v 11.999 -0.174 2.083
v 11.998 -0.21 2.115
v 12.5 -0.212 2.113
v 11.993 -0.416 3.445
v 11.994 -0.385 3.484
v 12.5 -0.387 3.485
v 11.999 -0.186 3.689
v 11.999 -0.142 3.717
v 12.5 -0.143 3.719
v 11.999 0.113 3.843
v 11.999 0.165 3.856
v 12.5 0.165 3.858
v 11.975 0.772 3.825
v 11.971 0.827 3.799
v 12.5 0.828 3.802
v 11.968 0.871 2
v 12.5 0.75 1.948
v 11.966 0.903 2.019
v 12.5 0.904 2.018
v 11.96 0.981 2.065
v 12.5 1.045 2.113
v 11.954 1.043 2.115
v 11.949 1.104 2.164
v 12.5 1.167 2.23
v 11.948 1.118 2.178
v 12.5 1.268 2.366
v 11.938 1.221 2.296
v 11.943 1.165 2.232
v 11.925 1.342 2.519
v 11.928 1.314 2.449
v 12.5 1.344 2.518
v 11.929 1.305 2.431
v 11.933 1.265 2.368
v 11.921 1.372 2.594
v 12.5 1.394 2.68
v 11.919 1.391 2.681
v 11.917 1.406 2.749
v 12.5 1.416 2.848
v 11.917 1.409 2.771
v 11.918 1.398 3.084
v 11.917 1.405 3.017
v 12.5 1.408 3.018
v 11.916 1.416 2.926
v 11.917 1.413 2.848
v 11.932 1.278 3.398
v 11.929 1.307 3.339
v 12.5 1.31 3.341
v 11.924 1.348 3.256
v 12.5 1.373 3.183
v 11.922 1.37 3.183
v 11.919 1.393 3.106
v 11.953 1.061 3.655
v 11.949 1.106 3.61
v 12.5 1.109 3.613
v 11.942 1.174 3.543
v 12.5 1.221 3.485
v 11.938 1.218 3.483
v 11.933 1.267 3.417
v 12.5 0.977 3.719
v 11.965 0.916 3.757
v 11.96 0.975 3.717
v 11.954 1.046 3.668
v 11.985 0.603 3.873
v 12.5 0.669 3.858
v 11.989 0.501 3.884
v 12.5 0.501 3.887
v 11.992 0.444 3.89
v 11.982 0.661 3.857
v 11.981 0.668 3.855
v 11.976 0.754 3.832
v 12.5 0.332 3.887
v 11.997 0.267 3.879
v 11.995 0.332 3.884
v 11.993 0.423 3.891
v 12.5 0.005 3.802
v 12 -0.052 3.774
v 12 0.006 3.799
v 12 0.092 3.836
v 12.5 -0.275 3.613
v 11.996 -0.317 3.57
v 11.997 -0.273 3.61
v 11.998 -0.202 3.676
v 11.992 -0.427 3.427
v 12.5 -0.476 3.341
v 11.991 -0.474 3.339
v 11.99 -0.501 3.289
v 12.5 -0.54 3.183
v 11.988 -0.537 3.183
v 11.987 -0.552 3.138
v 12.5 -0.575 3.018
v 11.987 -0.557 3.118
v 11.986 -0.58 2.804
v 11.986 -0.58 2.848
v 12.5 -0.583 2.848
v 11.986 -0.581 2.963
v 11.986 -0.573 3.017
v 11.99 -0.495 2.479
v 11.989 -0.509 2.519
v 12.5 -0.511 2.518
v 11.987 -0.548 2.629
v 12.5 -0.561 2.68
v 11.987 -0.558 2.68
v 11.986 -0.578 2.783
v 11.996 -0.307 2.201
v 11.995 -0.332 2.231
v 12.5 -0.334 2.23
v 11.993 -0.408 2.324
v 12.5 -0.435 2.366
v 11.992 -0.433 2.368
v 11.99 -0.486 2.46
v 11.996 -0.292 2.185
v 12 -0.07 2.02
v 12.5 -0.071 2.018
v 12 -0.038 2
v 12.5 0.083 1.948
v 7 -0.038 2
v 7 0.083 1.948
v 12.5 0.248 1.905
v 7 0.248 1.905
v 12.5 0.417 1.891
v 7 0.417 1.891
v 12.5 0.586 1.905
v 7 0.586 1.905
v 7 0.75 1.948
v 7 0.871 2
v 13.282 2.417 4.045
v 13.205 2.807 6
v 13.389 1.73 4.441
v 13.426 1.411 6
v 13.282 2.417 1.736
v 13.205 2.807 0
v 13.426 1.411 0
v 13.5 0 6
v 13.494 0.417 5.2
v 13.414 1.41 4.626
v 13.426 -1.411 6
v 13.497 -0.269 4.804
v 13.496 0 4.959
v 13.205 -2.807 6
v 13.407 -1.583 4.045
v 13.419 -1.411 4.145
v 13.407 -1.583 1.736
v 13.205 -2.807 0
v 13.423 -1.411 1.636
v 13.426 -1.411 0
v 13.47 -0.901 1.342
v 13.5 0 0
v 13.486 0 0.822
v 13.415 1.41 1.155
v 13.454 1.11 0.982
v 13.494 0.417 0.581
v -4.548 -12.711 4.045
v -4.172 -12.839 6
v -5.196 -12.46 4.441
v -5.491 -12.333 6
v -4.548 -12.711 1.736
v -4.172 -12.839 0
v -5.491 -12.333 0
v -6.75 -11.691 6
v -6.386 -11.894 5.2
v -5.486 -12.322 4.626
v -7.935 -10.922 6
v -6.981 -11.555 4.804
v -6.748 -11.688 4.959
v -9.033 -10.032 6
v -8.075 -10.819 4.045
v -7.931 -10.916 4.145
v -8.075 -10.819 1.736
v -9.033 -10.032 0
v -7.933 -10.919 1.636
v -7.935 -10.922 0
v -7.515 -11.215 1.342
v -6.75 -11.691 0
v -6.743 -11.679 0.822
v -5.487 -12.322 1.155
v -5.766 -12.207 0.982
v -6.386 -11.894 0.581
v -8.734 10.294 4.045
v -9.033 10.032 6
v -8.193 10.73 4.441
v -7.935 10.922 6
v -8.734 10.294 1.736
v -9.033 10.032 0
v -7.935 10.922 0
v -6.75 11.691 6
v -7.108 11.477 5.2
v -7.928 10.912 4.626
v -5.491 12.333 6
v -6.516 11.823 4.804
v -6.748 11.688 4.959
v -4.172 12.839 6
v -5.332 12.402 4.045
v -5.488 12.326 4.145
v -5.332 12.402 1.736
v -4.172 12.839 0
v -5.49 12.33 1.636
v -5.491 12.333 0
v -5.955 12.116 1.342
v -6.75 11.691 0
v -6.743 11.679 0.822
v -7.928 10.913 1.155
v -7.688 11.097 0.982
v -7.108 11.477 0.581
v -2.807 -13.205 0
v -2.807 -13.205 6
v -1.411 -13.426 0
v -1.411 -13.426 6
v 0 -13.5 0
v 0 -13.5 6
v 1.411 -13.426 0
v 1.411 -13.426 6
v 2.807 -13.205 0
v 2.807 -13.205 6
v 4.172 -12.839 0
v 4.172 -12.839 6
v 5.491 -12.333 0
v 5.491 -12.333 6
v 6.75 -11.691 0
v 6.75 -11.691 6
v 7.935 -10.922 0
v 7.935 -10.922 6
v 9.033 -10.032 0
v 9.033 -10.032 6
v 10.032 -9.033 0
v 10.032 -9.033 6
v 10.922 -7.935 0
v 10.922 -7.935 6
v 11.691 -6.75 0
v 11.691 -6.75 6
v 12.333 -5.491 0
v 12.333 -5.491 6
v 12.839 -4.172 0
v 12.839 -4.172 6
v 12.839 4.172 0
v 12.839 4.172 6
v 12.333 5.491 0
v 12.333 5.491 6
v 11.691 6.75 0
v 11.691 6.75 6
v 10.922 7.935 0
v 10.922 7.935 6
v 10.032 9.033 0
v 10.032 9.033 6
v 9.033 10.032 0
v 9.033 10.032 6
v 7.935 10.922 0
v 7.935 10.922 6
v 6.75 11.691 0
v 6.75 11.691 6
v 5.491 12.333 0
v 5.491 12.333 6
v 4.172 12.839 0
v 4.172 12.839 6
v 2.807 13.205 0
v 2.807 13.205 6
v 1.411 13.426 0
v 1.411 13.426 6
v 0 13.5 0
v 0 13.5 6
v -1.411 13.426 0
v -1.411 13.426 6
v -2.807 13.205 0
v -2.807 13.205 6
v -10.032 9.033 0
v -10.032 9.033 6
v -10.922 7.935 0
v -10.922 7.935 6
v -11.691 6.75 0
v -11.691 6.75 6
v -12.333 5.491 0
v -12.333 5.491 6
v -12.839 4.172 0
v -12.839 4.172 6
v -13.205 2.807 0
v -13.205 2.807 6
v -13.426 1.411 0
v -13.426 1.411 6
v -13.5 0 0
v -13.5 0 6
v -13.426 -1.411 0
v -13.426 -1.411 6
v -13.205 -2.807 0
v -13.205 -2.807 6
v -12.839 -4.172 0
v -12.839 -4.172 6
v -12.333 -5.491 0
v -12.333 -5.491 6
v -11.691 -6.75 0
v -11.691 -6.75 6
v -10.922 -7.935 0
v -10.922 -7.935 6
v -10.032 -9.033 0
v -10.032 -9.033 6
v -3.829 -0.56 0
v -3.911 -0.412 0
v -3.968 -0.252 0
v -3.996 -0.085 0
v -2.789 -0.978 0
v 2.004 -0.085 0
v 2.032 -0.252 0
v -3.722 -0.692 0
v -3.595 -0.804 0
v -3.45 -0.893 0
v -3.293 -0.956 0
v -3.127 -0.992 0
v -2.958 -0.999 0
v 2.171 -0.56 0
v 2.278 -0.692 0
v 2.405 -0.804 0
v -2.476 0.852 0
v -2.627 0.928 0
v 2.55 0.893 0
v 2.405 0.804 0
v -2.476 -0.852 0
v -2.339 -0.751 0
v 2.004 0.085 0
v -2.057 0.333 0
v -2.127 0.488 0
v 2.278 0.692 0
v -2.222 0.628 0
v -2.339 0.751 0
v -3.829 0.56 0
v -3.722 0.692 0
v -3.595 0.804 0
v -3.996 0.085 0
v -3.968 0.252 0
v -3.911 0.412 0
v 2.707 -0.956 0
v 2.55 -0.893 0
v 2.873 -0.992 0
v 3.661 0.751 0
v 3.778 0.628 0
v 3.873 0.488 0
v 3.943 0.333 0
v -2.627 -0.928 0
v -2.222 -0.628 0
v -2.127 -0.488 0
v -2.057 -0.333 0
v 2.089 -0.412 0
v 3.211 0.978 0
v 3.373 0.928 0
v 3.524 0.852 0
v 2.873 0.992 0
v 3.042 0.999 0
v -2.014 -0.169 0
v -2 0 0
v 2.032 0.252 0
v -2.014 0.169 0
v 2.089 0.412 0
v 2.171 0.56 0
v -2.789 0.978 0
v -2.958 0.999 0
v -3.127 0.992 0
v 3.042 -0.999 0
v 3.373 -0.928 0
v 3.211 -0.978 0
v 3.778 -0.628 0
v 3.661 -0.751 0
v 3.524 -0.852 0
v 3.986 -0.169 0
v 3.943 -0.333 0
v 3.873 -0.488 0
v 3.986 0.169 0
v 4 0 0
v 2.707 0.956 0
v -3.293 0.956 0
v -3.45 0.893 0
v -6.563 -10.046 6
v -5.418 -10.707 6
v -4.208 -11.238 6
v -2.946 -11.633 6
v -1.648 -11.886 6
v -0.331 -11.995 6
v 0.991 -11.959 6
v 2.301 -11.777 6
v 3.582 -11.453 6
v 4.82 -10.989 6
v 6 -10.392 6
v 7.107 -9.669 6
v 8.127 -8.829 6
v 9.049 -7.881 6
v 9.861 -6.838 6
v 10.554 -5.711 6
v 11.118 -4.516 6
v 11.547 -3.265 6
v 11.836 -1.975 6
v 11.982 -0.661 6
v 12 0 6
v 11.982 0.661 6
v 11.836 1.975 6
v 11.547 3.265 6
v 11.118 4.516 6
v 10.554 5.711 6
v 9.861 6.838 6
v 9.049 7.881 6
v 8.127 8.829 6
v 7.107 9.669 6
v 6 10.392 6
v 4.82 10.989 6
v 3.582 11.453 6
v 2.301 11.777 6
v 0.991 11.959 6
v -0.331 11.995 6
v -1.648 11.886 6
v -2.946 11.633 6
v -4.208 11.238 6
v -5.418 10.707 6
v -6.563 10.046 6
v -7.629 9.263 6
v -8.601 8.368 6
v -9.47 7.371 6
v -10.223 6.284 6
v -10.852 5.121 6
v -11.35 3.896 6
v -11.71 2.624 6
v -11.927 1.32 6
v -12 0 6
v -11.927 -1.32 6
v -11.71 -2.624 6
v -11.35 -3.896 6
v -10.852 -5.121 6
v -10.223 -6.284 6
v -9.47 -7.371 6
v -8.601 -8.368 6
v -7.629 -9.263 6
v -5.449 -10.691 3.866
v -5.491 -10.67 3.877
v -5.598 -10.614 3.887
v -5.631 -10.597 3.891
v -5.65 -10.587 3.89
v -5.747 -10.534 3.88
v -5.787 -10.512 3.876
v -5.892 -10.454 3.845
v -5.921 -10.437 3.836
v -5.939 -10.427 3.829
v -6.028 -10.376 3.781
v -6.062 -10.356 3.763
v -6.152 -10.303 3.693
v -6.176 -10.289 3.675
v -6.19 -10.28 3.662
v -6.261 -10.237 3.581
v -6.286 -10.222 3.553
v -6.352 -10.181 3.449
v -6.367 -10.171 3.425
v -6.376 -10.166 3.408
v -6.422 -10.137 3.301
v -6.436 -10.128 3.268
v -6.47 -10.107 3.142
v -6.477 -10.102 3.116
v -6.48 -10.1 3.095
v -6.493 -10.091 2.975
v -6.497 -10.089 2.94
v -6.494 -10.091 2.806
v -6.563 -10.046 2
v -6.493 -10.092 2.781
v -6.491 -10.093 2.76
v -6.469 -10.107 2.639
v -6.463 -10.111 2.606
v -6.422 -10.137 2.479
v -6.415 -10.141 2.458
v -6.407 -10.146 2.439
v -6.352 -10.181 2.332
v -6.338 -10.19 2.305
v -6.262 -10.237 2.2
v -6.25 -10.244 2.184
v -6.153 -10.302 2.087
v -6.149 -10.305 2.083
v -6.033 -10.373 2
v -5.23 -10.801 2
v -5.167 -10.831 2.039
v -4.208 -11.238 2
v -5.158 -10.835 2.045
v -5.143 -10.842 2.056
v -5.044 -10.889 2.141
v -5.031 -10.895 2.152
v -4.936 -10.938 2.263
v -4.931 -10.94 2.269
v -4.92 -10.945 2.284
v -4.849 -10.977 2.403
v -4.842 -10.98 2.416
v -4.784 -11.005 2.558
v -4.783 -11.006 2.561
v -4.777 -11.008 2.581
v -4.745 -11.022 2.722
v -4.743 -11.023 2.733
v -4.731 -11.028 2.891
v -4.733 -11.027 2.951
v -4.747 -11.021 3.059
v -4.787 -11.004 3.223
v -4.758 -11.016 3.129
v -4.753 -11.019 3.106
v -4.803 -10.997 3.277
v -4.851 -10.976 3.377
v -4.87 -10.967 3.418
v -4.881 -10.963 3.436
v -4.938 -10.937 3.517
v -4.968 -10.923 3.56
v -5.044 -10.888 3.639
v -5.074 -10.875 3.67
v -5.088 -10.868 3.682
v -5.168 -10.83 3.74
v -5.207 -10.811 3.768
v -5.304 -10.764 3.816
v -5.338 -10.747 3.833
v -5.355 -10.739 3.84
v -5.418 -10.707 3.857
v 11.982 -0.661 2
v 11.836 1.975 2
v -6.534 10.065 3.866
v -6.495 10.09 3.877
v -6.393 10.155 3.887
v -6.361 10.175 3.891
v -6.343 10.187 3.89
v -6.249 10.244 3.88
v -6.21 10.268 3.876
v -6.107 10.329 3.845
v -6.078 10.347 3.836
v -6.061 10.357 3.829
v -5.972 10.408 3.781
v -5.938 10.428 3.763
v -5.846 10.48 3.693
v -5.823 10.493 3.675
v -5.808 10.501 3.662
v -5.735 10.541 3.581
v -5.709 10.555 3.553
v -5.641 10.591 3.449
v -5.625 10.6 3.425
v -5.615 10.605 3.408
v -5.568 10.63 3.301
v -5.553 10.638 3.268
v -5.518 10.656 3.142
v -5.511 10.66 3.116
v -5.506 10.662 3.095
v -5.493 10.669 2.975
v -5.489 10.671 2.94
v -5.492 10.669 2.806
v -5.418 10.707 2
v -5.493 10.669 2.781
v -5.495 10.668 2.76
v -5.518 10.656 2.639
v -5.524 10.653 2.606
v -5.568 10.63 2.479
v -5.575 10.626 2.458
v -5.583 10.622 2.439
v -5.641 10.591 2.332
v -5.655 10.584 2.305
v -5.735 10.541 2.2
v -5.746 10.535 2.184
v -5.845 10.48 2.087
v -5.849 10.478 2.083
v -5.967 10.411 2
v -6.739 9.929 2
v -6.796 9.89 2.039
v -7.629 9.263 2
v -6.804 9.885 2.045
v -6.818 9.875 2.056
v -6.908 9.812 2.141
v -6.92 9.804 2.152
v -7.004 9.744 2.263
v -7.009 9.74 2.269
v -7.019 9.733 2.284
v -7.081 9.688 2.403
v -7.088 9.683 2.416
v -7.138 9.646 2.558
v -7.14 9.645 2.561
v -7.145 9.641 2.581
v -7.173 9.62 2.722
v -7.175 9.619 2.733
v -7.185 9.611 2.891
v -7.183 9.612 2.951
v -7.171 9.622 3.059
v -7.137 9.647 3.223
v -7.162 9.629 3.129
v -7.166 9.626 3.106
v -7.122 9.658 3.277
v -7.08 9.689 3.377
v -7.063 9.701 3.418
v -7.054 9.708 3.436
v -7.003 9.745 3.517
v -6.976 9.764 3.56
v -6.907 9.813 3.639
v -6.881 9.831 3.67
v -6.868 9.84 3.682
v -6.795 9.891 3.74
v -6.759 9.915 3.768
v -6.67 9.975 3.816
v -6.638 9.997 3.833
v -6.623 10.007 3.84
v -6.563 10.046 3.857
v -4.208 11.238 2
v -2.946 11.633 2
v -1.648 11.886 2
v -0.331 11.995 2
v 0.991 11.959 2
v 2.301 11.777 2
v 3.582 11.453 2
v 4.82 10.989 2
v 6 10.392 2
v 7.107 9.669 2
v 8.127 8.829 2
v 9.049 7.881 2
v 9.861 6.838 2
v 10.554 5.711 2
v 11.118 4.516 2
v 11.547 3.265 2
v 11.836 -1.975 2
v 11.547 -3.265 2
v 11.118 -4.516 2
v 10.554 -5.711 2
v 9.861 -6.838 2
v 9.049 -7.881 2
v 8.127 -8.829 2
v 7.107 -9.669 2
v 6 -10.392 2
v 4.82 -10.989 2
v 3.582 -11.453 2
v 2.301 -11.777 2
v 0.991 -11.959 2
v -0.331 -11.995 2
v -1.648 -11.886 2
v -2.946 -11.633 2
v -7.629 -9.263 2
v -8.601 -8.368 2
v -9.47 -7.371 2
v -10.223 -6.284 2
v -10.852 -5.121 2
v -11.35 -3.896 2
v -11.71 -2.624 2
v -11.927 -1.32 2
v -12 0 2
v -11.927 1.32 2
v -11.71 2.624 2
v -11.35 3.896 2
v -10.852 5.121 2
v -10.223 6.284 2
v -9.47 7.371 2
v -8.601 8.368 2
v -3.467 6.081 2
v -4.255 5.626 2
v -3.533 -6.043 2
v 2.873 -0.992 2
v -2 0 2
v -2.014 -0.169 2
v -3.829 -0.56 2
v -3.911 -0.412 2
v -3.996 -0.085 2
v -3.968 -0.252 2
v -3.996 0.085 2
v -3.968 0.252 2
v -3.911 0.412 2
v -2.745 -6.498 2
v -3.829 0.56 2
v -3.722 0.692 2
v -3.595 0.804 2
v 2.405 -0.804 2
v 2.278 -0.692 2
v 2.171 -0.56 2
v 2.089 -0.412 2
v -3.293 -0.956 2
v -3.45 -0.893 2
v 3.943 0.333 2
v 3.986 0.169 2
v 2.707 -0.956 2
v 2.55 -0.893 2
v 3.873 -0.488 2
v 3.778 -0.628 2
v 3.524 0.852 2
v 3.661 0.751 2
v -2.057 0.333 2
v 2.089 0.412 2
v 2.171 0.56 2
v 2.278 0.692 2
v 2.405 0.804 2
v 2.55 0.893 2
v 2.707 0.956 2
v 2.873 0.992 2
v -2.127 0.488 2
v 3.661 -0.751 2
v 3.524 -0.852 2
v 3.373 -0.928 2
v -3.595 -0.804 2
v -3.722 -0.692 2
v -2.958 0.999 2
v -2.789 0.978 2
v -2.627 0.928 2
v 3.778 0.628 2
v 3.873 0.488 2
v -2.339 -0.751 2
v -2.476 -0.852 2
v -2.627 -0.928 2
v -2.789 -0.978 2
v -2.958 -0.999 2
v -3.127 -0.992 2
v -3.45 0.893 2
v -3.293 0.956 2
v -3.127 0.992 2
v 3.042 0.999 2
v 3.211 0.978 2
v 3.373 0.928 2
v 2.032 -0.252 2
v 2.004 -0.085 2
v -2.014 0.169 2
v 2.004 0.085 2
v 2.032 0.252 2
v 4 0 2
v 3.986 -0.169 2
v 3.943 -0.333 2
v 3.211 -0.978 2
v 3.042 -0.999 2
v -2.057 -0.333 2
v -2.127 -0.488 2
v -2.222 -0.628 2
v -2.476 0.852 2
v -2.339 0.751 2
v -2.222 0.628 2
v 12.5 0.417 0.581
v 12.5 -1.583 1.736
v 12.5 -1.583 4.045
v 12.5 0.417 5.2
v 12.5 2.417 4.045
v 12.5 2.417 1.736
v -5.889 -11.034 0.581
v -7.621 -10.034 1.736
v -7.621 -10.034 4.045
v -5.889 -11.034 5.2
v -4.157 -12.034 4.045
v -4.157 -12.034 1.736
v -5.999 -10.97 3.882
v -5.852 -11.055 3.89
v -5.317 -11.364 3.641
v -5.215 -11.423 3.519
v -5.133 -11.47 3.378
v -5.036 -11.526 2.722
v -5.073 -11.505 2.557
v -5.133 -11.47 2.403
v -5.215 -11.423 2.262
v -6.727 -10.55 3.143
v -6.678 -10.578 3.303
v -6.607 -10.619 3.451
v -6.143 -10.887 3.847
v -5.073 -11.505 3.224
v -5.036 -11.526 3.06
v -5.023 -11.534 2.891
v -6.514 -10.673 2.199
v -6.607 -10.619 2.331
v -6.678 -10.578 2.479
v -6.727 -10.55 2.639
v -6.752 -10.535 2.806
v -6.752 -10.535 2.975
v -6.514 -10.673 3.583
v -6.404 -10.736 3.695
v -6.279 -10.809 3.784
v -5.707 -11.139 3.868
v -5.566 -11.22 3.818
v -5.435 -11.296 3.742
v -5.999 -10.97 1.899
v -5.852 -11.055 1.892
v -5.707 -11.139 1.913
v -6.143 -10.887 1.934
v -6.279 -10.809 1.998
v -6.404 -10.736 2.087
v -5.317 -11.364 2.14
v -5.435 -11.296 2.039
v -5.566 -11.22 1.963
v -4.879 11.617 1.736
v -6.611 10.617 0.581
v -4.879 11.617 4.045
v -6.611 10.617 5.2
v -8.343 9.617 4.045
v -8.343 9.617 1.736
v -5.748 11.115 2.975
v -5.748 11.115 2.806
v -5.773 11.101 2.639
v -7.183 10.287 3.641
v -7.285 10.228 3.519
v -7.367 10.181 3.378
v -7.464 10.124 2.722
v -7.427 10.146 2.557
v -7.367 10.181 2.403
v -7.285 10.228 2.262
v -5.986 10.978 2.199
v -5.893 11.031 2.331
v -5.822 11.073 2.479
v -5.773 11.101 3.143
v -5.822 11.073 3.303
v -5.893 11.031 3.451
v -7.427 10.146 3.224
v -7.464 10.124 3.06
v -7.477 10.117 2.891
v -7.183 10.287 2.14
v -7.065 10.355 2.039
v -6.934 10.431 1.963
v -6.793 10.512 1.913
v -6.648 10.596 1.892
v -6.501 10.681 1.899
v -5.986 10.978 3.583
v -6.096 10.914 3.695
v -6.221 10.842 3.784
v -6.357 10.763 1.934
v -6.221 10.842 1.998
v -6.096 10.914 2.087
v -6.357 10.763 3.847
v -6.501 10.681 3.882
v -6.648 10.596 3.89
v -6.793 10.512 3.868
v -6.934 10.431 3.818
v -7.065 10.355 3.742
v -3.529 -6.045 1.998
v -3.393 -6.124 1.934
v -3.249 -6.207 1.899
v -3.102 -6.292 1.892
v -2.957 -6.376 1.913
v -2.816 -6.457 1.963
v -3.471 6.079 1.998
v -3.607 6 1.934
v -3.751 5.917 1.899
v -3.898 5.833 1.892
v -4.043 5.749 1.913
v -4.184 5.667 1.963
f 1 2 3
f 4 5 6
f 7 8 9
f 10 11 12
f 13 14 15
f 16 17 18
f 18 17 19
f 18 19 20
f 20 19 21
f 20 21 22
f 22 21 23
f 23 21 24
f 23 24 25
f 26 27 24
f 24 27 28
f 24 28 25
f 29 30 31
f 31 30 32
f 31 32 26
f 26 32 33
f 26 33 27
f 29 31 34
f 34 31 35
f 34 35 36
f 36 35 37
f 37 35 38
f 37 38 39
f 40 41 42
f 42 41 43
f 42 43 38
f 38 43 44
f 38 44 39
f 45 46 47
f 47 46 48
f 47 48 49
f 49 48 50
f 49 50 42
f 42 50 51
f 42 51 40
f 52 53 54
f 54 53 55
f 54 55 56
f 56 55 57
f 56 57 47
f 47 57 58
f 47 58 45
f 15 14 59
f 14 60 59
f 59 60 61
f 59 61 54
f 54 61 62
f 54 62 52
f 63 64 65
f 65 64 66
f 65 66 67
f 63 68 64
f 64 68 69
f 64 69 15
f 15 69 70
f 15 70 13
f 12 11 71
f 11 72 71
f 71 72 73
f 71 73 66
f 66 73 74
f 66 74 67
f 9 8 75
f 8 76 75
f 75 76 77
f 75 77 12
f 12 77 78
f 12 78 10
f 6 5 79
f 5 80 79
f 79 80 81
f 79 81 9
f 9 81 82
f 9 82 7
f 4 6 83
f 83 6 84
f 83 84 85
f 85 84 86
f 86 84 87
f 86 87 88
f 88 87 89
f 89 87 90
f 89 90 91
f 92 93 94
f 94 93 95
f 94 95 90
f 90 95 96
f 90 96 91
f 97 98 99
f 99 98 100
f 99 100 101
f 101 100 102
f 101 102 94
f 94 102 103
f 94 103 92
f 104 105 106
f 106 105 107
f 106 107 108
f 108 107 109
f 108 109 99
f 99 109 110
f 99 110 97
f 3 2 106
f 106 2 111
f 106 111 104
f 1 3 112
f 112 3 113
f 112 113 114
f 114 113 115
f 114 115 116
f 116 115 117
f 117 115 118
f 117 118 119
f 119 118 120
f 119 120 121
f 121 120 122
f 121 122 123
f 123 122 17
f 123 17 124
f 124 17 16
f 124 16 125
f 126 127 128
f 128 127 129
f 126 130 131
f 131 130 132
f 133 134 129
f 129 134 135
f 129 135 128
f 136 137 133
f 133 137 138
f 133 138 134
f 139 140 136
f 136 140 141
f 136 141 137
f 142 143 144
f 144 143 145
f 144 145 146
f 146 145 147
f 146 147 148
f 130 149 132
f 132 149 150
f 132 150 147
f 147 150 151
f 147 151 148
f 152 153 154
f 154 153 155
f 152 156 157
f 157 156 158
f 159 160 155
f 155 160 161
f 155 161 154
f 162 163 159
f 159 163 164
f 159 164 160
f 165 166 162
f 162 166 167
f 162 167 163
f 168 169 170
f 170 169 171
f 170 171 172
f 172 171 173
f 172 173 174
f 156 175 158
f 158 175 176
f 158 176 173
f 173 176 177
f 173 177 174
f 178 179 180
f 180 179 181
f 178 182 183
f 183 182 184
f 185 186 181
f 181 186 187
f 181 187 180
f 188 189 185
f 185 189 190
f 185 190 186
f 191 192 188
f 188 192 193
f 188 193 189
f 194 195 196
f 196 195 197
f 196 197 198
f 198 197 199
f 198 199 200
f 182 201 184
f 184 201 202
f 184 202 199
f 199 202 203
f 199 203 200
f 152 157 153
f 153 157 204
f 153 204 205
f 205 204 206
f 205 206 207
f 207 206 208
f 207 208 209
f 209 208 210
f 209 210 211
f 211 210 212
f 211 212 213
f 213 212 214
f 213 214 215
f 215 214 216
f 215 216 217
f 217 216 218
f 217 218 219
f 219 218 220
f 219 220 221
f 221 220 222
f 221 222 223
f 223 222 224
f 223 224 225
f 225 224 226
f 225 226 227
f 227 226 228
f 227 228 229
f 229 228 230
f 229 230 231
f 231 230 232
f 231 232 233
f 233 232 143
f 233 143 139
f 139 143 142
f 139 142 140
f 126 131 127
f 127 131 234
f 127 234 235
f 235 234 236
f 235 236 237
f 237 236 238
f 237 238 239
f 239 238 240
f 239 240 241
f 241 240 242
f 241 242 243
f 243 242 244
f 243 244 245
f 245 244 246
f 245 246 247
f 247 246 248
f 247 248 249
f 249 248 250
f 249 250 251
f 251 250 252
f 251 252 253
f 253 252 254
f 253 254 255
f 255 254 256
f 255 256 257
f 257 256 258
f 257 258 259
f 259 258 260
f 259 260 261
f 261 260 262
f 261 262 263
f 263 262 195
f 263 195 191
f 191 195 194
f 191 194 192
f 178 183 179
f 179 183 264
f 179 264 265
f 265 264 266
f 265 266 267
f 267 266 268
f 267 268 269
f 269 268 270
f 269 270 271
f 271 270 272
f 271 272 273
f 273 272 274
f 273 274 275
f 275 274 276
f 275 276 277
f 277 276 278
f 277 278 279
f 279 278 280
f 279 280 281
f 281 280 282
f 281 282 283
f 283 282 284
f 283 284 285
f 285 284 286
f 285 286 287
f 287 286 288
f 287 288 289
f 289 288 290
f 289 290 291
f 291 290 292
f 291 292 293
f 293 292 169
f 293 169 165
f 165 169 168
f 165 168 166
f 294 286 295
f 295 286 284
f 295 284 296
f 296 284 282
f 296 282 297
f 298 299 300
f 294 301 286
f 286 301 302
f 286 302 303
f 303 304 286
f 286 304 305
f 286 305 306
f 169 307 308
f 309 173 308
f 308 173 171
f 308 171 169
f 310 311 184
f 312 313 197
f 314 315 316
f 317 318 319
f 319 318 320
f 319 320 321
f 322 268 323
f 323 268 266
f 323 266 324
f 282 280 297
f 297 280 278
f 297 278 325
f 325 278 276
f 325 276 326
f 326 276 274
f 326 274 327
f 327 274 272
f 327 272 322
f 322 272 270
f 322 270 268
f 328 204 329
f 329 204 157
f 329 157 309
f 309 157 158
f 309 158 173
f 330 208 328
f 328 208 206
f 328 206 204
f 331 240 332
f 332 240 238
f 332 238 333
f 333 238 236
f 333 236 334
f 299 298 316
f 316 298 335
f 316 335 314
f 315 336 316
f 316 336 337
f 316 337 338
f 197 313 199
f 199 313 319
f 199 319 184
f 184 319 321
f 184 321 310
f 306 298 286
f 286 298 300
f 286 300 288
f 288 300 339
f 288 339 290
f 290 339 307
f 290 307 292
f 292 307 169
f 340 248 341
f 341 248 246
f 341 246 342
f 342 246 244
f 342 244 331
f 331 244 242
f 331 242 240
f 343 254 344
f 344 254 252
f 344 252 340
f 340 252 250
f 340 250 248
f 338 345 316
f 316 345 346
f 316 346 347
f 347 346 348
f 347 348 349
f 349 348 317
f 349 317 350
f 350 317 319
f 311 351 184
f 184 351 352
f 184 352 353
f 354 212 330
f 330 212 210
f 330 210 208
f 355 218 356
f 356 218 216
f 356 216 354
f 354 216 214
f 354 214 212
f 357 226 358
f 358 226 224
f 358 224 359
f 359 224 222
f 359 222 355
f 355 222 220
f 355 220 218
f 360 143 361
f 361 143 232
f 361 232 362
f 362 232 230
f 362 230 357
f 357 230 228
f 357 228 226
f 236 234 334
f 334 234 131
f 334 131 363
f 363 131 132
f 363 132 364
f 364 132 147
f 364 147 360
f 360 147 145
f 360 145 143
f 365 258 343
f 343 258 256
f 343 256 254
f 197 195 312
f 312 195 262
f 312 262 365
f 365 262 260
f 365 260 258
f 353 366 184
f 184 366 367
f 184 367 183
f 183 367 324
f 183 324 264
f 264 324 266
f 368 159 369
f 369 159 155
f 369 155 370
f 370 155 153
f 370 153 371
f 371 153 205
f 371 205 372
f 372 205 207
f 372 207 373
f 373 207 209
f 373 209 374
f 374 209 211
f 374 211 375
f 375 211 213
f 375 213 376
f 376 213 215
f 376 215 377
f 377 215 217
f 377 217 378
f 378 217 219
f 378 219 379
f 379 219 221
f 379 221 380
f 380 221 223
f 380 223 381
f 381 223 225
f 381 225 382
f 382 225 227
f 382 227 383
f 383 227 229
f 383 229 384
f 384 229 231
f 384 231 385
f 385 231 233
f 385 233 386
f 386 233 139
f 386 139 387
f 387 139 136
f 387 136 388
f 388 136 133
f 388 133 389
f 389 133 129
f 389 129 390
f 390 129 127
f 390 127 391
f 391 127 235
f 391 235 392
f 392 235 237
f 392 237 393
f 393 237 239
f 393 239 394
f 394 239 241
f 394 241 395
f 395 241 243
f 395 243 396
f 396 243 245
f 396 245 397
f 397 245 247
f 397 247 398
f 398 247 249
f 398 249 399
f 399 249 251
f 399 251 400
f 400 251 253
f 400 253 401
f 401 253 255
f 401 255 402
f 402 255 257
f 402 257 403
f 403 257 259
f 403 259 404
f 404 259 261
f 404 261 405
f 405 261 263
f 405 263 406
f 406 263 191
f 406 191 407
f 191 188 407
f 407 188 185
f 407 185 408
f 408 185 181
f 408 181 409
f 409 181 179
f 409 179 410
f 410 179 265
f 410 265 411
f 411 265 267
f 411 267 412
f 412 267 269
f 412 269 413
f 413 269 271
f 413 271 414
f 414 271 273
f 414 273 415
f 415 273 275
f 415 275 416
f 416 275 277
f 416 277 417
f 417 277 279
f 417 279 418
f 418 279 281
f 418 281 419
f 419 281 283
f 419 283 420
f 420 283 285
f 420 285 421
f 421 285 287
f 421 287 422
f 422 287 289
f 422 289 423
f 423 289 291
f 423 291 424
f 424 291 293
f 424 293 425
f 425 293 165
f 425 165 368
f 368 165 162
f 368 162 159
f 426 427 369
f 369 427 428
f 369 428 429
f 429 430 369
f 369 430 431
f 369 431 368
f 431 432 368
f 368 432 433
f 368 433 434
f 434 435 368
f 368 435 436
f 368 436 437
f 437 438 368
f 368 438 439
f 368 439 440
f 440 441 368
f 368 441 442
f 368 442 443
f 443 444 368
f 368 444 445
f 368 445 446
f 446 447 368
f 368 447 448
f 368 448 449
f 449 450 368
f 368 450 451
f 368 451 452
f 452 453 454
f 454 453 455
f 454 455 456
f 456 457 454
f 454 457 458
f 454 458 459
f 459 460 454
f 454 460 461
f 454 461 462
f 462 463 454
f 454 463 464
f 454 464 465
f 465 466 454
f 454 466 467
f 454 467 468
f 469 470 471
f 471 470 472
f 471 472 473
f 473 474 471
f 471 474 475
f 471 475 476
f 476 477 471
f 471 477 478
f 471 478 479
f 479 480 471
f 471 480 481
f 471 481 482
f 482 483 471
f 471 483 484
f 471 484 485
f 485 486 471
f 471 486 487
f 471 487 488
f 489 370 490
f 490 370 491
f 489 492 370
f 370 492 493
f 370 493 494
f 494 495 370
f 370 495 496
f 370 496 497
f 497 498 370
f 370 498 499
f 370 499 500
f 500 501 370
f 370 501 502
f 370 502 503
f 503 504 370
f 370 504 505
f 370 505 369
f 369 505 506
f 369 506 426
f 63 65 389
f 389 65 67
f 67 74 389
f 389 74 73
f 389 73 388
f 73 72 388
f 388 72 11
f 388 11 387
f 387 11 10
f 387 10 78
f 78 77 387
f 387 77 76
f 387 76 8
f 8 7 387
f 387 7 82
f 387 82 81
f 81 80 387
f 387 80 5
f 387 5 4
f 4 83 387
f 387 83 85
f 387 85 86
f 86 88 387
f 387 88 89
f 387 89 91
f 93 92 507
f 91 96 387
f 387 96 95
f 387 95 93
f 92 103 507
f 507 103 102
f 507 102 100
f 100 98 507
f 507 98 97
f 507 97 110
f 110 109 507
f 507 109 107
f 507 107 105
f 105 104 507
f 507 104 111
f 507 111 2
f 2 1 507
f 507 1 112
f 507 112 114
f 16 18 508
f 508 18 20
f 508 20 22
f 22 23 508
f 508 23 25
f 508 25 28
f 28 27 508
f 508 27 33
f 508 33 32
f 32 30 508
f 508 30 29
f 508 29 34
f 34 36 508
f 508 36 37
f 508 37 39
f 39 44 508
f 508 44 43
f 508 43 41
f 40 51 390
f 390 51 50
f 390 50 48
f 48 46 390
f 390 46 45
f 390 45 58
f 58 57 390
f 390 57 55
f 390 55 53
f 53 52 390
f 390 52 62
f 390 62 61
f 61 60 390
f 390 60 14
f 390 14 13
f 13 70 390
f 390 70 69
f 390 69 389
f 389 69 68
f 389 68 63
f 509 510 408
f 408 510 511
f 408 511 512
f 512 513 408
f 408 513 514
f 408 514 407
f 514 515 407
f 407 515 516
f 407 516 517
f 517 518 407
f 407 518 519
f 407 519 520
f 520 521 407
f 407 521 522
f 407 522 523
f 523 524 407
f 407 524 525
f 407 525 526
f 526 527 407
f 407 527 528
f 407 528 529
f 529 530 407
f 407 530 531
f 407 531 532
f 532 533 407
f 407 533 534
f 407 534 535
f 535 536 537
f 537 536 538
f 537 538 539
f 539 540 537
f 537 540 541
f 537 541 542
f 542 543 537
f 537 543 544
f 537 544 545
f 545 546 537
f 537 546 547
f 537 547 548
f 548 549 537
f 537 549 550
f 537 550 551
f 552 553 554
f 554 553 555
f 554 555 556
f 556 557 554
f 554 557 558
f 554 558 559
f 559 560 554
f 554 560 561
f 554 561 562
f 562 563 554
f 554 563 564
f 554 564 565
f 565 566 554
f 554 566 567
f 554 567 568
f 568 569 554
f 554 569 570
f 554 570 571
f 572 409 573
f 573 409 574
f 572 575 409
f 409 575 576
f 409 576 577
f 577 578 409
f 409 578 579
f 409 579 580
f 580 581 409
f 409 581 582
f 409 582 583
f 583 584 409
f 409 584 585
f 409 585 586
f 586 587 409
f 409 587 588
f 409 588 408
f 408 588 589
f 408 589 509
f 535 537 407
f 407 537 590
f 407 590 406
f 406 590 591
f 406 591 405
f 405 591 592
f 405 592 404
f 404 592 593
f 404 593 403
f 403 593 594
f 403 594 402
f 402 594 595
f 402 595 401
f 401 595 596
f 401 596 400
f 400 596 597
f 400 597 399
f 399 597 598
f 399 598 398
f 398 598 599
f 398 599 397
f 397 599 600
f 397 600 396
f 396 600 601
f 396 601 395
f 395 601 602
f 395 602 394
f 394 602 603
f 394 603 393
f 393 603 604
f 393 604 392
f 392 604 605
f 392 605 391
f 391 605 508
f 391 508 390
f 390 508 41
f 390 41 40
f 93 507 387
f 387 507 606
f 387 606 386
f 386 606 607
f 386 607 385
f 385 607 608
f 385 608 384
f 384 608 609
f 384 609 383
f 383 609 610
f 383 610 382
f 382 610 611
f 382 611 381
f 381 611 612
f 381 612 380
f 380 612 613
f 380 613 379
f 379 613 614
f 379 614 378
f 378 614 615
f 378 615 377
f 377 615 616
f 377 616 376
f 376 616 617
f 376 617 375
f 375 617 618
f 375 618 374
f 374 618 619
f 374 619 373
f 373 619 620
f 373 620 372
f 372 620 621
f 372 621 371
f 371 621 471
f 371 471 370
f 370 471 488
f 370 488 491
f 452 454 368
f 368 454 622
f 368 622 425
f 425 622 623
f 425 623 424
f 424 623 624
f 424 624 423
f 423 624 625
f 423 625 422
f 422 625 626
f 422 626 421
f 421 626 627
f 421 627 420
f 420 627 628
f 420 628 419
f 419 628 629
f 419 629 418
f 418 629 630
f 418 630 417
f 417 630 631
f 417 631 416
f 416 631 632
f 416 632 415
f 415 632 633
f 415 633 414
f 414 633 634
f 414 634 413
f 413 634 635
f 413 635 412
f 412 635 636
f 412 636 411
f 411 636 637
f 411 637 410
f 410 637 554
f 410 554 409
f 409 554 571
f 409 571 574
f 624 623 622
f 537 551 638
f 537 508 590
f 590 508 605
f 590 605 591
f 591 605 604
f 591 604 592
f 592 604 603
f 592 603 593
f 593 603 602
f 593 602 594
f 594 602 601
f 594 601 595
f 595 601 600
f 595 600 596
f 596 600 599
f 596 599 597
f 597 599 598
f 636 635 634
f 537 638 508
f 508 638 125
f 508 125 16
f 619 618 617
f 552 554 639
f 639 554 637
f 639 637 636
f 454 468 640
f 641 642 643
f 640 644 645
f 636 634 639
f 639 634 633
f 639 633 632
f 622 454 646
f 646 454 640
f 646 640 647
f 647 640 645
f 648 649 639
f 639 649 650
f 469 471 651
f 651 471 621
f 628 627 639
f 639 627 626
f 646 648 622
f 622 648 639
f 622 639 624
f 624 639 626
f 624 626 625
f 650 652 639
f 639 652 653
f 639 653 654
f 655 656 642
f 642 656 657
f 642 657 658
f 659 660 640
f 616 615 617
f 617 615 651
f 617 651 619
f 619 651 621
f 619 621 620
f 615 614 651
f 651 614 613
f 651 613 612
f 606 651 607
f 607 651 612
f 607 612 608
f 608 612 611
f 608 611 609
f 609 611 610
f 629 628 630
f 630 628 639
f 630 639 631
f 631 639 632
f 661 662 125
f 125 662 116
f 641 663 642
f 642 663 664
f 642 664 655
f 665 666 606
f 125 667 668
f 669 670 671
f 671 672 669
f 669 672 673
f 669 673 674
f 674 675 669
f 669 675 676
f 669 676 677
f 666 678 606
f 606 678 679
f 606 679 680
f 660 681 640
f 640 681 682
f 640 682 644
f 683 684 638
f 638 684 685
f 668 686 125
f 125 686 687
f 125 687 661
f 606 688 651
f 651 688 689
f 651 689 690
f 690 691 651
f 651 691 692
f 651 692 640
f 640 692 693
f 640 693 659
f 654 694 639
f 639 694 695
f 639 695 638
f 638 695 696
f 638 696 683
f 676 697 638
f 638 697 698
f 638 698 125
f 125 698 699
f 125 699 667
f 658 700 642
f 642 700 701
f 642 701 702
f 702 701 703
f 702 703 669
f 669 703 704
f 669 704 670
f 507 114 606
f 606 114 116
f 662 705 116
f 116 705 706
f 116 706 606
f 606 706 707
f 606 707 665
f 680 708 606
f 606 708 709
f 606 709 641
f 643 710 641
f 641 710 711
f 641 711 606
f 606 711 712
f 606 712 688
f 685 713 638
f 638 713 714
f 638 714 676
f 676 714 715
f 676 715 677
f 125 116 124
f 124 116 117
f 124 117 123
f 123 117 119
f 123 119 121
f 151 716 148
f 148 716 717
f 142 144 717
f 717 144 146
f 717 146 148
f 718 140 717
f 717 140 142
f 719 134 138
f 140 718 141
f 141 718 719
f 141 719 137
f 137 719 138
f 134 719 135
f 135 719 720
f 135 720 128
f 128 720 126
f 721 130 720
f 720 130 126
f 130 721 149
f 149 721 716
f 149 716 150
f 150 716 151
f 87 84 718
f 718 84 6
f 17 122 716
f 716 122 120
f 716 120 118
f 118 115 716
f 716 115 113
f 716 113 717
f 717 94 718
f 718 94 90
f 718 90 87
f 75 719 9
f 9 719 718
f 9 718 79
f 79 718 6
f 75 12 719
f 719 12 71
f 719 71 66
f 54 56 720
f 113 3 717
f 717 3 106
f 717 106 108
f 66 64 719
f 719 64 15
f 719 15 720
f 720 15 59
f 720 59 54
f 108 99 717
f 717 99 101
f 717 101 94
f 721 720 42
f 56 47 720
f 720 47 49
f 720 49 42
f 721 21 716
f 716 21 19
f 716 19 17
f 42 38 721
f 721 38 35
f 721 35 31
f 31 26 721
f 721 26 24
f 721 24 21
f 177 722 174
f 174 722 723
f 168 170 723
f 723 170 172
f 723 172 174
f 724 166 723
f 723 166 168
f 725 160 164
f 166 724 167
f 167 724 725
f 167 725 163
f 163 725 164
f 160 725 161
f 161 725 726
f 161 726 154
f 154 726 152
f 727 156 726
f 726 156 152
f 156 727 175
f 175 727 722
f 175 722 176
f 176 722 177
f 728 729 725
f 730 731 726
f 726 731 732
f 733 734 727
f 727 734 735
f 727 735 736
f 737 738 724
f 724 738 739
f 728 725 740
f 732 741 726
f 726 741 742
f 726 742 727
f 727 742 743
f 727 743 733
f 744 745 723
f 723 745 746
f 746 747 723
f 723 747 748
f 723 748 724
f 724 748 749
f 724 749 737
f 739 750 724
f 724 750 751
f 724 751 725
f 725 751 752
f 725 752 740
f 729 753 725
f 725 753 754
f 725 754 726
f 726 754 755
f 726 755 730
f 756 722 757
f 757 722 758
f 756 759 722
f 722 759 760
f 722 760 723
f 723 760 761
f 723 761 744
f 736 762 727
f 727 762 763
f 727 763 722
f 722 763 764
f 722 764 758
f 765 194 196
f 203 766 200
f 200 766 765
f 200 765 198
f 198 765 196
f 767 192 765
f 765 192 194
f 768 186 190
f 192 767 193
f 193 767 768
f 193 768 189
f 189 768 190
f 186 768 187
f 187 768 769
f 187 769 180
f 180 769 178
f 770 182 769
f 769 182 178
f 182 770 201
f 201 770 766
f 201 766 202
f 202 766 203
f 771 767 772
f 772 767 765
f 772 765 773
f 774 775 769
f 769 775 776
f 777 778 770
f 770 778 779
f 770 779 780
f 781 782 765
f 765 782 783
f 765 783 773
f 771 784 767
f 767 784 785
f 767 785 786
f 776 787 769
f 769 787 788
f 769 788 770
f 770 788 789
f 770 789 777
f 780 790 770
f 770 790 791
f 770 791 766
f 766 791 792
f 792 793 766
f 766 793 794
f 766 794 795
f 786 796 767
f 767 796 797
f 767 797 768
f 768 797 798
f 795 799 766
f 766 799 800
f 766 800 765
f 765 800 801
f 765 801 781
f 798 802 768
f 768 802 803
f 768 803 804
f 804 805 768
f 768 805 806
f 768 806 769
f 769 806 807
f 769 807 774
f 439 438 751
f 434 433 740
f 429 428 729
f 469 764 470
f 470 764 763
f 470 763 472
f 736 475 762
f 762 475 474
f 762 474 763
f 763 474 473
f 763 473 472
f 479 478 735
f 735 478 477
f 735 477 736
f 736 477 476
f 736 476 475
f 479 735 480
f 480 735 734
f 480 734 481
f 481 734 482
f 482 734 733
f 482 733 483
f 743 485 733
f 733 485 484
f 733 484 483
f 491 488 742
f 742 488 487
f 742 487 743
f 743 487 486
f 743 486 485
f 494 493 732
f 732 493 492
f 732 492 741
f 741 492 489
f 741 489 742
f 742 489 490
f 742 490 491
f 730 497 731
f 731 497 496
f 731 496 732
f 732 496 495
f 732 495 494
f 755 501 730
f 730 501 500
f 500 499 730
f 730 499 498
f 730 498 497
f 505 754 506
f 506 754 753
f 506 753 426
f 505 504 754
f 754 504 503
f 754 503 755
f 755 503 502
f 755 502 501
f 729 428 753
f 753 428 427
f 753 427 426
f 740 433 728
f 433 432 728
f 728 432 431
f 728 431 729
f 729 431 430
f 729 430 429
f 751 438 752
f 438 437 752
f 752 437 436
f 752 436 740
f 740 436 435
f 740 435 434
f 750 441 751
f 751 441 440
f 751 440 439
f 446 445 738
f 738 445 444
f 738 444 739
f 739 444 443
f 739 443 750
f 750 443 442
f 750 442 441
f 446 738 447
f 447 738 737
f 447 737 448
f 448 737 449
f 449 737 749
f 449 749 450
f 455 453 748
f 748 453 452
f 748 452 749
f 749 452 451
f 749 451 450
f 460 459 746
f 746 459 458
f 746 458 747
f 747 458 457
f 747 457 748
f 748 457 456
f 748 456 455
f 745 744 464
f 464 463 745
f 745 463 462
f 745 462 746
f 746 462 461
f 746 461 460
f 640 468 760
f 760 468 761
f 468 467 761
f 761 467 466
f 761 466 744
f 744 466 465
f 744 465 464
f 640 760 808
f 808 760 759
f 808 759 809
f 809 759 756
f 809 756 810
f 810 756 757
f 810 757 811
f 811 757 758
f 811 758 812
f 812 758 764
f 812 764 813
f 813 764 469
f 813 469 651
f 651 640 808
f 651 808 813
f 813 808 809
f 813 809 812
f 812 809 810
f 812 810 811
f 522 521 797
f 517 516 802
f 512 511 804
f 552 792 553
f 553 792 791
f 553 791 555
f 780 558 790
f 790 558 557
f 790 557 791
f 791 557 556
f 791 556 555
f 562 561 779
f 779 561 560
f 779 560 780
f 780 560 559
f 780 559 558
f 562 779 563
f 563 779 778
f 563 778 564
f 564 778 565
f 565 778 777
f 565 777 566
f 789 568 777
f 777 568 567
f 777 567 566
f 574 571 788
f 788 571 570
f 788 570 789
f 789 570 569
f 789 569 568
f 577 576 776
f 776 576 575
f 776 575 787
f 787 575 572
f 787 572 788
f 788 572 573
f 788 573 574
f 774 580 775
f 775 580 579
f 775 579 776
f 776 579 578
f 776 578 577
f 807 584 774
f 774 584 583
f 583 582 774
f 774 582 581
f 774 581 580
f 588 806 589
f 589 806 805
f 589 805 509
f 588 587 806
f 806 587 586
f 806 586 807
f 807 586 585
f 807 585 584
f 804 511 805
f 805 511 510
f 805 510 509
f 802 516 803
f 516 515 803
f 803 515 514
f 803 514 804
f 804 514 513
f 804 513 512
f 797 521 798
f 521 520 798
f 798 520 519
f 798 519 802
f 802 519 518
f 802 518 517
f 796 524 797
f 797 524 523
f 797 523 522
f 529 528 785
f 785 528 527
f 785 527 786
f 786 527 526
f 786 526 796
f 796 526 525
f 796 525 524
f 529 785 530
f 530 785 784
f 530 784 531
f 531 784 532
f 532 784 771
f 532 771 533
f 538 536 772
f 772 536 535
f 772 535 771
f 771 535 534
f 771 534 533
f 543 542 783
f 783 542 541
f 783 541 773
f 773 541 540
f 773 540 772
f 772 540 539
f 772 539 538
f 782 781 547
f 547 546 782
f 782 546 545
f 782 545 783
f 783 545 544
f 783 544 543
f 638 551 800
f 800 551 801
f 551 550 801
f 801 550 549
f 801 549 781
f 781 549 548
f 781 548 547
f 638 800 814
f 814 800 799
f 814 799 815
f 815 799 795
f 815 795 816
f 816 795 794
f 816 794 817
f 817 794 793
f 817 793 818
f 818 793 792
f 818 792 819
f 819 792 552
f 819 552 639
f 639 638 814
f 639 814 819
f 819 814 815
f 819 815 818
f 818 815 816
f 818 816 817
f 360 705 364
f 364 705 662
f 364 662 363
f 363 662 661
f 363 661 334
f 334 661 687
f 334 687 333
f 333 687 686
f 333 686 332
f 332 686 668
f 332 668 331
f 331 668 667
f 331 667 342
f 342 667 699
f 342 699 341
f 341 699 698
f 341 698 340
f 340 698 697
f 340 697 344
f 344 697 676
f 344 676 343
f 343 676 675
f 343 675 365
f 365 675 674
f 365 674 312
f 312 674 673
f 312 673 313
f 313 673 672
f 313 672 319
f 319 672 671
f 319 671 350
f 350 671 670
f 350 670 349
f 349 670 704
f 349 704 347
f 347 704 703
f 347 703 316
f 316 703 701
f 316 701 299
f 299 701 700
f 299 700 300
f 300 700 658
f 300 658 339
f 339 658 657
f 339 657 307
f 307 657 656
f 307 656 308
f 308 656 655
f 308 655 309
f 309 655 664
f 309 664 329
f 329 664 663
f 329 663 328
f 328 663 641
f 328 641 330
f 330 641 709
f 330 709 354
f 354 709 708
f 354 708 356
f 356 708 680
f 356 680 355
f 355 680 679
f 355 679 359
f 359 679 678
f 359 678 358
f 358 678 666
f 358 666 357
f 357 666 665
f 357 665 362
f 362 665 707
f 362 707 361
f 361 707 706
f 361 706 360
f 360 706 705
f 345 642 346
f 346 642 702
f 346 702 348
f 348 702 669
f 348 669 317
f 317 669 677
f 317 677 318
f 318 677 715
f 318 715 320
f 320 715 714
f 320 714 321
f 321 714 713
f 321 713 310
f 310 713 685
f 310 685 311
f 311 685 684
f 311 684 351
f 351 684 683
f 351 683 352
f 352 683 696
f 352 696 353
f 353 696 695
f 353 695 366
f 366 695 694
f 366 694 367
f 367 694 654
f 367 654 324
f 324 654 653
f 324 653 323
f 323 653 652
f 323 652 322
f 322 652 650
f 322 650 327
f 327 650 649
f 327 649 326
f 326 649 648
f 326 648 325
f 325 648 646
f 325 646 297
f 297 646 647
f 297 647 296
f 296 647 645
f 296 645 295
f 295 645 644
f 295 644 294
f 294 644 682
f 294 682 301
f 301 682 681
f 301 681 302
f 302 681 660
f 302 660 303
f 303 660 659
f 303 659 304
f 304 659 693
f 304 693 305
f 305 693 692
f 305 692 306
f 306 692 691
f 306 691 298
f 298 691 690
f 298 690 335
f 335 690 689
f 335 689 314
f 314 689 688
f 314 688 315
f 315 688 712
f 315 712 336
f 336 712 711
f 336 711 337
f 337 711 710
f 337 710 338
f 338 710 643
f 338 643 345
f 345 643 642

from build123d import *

# Parameters (mm, degrees)
SKETCH1_R                   = 13.5
BOSS_EXTRUDE1_DEPTH         = 2
SKETCH2_R                   = 13.5
SKETCH2_R_2                 = 12
BOSS_EXTRUDE2_DEPTH         = 4
SKETCH4_R                   = 1
CUT_EXTRUDE1_DEPTH          = 13
SKETCH4_3_R                 = 1
CUT_EXTRUDE2_DEPTH          = 7.5
CIRPATTERN1_COUNT           = 3
CIRPATTERN2_COUNT           = 3
CIRPATTERN2_COPY_1_SKETCH_R = 1
CIRPATTERN2_COPY_1_DEPTH    = 7.5
CIRPATTERN2_COPY_2_SKETCH_R = 1
CIRPATTERN2_COPY_2_DEPTH    = 7.5
CIRPATTERN2_COPY_3_SKETCH_R = 1
CIRPATTERN2_COPY_3_DEPTH    = 7.5
CIRPATTERN2_COPY_4_SKETCH_R = 1
CIRPATTERN2_COPY_4_DEPTH    = 7.5
CIRPATTERN2_COPY_5_SKETCH_R = 1
CIRPATTERN2_COPY_5_DEPTH    = 7.5
CIRPATTERN2_COPY_6_SKETCH_R = 1
CIRPATTERN2_COPY_6_DEPTH    = 7.5
SKETCH5_R                   = 1
CUT_EXTRUDE3_DEPTH          = 20.506409224


with BuildPart() as part:
    # Sketch1 → Boss-Extrude1 (new body)
    with BuildSketch(Plane.XY):
        Circle(SKETCH1_R)
    extrude(amount=BOSS_EXTRUDE1_DEPTH)

    # Sketch2 → Boss-Extrude2 (add)
    with BuildSketch(Plane.XY.offset(2)):
        Circle(SKETCH2_R)
        Circle(SKETCH2_R_2, mode=Mode.SUBTRACT)
    extrude(amount=BOSS_EXTRUDE2_DEPTH)

    # Sketch4 → Cut-Extrude1 (cut)
    with BuildSketch(Plane(origin=(20, 0, 0), x_dir=(0, 0, -1), z_dir=(1, 0, 0))):
        with Locations((-2.890598923, 0.416590766)):
            Circle(SKETCH4_R)
    cut_extrude1 = extrude(amount=-CUT_EXTRUDE1_DEPTH, mode=Mode.SUBTRACT)

    # Sketch4<3> → Cut-Extrude2 (cut)
    with BuildSketch(Plane(origin=(20, 0, 0), x_dir=(0, 0, -1), z_dir=(1, 0, 0))):
        Polygon((-0.581197846, 0.416590766), (-1.735898385, 2.416590766), (-4.045299462, 2.416590766), (-5.2, 0.416590766), (-4.045299462, -1.583409234), (-1.735898385, -1.583409234), align=None)
        with Locations((-2.890598923, 0.416590766)):
            Circle(SKETCH4_3_R, mode=Mode.SUBTRACT)
    cut_extrude2 = extrude(amount=-CUT_EXTRUDE2_DEPTH, mode=Mode.SUBTRACT)

    # CirPattern1: Cut-Extrude2 ×3 about axis
    cirpattern1_axis = Axis((0, 0, 2), (0, 0, -1))
    for i in range(1, CIRPATTERN1_COUNT):
        add(cut_extrude2.rotate(cirpattern1_axis, i * 360 / CIRPATTERN1_COUNT), mode=Mode.SUBTRACT)

    # CirPattern2: Cut-Extrude1 ×3 about axis
    cirpattern2_axis = Axis((0, 0, 2), (0, 0, -1))
    for i in range(1, CIRPATTERN2_COUNT):
        add(cut_extrude1.rotate(cirpattern2_axis, i * 360 / CIRPATTERN2_COUNT), mode=Mode.SUBTRACT)

    # CirPattern2 copy 1 sketch → CirPattern2 copy 1 (cut)
    with BuildSketch(Plane(origin=(-10, 17.320508076, 0), x_dir=(0, 0, -1), z_dir=(-0.5000000000000003, 0.8660254037844384, 0))):
        Polygon((-0.581197846, 0.416590766), (-1.735898385, 2.416590766), (-4.045299462, 2.416590766), (-5.2, 0.416590766), (-4.045299462, -1.583409234), (-1.735898385, -1.583409234), align=None)
        with Locations((-2.890598923, 0.416590766)):
            Circle(CIRPATTERN2_COPY_1_SKETCH_R, mode=Mode.SUBTRACT)
    extrude(amount=-CIRPATTERN2_COPY_1_DEPTH, mode=Mode.SUBTRACT)

    # CirPattern2 copy 2 sketch → CirPattern2 copy 2 (cut)
    with BuildSketch(Plane(origin=(20, 0, 0), x_dir=(0, 0, -1), z_dir=(1, 0, 0))):
        Polygon((-0.581197846, 0.416590766), (-1.735898385, 2.416590766), (-4.045299462, 2.416590766), (-5.2, 0.416590766), (-4.045299462, -1.583409234), (-1.735898385, -1.583409234), align=None)
        with Locations((-2.890598923, 0.416590766)):
            Circle(CIRPATTERN2_COPY_2_SKETCH_R, mode=Mode.SUBTRACT)
    extrude(amount=-CIRPATTERN2_COPY_2_DEPTH, mode=Mode.SUBTRACT)

    # CirPattern2 copy 3 sketch → CirPattern2 copy 3 (cut)
    with BuildSketch(Plane(origin=(20, 0, 0), x_dir=(0, 0, -1), z_dir=(1, 0, 0))):
        Polygon((-0.581197846, 0.416590766), (-1.735898385, 2.416590766), (-4.045299462, 2.416590766), (-5.2, 0.416590766), (-4.045299462, -1.583409234), (-1.735898385, -1.583409234), align=None)
        with Locations((-2.890598923, 0.416590766)):
            Circle(CIRPATTERN2_COPY_3_SKETCH_R, mode=Mode.SUBTRACT)
    extrude(amount=-CIRPATTERN2_COPY_3_DEPTH, mode=Mode.SUBTRACT)

    # CirPattern2 copy 4 sketch → CirPattern2 copy 4 (cut)
    with BuildSketch(Plane(origin=(-10, -17.320508076, 0), x_dir=(0, 0, -1), z_dir=(-0.4999999999999991, -0.8660254037844392, 0))):
        Polygon((-0.581197846, 0.416590766), (-1.735898385, 2.416590766), (-4.045299462, 2.416590766), (-5.2, 0.416590766), (-4.045299462, -1.583409234), (-1.735898385, -1.583409234), align=None)
        with Locations((-2.890598923, 0.416590766)):
            Circle(CIRPATTERN2_COPY_4_SKETCH_R, mode=Mode.SUBTRACT)
    extrude(amount=-CIRPATTERN2_COPY_4_DEPTH, mode=Mode.SUBTRACT)

    # CirPattern2 copy 5 sketch → CirPattern2 copy 5 (cut)
    with BuildSketch(Plane(origin=(-10, -17.320508076, 0), x_dir=(0, 0, -1), z_dir=(-0.4999999999999998, -0.8660254037844387, 0))):
        Polygon((-0.581197846, 0.416590766), (-1.735898385, 2.416590766), (-4.045299462, 2.416590766), (-5.2, 0.416590766), (-4.045299462, -1.583409234), (-1.735898385, -1.583409234), align=None)
        with Locations((-2.890598923, 0.416590766)):
            Circle(CIRPATTERN2_COPY_5_SKETCH_R, mode=Mode.SUBTRACT)
    extrude(amount=-CIRPATTERN2_COPY_5_DEPTH, mode=Mode.SUBTRACT)

    # CirPattern2 copy 6 sketch → CirPattern2 copy 6 (cut)
    with BuildSketch(Plane(origin=(-10, 17.320508076, 0), x_dir=(0, 0, -1), z_dir=(-0.5000000000000004, 0.8660254037844384, 0))):
        Polygon((-0.581197846, 0.416590766), (-1.735898385, 2.416590766), (-4.045299462, 2.416590766), (-5.2, 0.416590766), (-4.045299462, -1.583409234), (-1.735898385, -1.583409234), align=None)
        with Locations((-2.890598923, 0.416590766)):
            Circle(CIRPATTERN2_COPY_6_SKETCH_R, mode=Mode.SUBTRACT)
    extrude(amount=-CIRPATTERN2_COPY_6_DEPTH, mode=Mode.SUBTRACT)

    # Sketch5 → Cut-Extrude3 (cut, through all)
    with BuildSketch(Plane.XY.offset(2)):
        with Locations((3, 0)):
            Circle(SKETCH5_R)
        with Locations((-3, 0)):
            Circle(SKETCH5_R)
    extrude(amount=-CUT_EXTRUDE3_DEPTH, mode=Mode.SUBTRACT)


solid = part.part
